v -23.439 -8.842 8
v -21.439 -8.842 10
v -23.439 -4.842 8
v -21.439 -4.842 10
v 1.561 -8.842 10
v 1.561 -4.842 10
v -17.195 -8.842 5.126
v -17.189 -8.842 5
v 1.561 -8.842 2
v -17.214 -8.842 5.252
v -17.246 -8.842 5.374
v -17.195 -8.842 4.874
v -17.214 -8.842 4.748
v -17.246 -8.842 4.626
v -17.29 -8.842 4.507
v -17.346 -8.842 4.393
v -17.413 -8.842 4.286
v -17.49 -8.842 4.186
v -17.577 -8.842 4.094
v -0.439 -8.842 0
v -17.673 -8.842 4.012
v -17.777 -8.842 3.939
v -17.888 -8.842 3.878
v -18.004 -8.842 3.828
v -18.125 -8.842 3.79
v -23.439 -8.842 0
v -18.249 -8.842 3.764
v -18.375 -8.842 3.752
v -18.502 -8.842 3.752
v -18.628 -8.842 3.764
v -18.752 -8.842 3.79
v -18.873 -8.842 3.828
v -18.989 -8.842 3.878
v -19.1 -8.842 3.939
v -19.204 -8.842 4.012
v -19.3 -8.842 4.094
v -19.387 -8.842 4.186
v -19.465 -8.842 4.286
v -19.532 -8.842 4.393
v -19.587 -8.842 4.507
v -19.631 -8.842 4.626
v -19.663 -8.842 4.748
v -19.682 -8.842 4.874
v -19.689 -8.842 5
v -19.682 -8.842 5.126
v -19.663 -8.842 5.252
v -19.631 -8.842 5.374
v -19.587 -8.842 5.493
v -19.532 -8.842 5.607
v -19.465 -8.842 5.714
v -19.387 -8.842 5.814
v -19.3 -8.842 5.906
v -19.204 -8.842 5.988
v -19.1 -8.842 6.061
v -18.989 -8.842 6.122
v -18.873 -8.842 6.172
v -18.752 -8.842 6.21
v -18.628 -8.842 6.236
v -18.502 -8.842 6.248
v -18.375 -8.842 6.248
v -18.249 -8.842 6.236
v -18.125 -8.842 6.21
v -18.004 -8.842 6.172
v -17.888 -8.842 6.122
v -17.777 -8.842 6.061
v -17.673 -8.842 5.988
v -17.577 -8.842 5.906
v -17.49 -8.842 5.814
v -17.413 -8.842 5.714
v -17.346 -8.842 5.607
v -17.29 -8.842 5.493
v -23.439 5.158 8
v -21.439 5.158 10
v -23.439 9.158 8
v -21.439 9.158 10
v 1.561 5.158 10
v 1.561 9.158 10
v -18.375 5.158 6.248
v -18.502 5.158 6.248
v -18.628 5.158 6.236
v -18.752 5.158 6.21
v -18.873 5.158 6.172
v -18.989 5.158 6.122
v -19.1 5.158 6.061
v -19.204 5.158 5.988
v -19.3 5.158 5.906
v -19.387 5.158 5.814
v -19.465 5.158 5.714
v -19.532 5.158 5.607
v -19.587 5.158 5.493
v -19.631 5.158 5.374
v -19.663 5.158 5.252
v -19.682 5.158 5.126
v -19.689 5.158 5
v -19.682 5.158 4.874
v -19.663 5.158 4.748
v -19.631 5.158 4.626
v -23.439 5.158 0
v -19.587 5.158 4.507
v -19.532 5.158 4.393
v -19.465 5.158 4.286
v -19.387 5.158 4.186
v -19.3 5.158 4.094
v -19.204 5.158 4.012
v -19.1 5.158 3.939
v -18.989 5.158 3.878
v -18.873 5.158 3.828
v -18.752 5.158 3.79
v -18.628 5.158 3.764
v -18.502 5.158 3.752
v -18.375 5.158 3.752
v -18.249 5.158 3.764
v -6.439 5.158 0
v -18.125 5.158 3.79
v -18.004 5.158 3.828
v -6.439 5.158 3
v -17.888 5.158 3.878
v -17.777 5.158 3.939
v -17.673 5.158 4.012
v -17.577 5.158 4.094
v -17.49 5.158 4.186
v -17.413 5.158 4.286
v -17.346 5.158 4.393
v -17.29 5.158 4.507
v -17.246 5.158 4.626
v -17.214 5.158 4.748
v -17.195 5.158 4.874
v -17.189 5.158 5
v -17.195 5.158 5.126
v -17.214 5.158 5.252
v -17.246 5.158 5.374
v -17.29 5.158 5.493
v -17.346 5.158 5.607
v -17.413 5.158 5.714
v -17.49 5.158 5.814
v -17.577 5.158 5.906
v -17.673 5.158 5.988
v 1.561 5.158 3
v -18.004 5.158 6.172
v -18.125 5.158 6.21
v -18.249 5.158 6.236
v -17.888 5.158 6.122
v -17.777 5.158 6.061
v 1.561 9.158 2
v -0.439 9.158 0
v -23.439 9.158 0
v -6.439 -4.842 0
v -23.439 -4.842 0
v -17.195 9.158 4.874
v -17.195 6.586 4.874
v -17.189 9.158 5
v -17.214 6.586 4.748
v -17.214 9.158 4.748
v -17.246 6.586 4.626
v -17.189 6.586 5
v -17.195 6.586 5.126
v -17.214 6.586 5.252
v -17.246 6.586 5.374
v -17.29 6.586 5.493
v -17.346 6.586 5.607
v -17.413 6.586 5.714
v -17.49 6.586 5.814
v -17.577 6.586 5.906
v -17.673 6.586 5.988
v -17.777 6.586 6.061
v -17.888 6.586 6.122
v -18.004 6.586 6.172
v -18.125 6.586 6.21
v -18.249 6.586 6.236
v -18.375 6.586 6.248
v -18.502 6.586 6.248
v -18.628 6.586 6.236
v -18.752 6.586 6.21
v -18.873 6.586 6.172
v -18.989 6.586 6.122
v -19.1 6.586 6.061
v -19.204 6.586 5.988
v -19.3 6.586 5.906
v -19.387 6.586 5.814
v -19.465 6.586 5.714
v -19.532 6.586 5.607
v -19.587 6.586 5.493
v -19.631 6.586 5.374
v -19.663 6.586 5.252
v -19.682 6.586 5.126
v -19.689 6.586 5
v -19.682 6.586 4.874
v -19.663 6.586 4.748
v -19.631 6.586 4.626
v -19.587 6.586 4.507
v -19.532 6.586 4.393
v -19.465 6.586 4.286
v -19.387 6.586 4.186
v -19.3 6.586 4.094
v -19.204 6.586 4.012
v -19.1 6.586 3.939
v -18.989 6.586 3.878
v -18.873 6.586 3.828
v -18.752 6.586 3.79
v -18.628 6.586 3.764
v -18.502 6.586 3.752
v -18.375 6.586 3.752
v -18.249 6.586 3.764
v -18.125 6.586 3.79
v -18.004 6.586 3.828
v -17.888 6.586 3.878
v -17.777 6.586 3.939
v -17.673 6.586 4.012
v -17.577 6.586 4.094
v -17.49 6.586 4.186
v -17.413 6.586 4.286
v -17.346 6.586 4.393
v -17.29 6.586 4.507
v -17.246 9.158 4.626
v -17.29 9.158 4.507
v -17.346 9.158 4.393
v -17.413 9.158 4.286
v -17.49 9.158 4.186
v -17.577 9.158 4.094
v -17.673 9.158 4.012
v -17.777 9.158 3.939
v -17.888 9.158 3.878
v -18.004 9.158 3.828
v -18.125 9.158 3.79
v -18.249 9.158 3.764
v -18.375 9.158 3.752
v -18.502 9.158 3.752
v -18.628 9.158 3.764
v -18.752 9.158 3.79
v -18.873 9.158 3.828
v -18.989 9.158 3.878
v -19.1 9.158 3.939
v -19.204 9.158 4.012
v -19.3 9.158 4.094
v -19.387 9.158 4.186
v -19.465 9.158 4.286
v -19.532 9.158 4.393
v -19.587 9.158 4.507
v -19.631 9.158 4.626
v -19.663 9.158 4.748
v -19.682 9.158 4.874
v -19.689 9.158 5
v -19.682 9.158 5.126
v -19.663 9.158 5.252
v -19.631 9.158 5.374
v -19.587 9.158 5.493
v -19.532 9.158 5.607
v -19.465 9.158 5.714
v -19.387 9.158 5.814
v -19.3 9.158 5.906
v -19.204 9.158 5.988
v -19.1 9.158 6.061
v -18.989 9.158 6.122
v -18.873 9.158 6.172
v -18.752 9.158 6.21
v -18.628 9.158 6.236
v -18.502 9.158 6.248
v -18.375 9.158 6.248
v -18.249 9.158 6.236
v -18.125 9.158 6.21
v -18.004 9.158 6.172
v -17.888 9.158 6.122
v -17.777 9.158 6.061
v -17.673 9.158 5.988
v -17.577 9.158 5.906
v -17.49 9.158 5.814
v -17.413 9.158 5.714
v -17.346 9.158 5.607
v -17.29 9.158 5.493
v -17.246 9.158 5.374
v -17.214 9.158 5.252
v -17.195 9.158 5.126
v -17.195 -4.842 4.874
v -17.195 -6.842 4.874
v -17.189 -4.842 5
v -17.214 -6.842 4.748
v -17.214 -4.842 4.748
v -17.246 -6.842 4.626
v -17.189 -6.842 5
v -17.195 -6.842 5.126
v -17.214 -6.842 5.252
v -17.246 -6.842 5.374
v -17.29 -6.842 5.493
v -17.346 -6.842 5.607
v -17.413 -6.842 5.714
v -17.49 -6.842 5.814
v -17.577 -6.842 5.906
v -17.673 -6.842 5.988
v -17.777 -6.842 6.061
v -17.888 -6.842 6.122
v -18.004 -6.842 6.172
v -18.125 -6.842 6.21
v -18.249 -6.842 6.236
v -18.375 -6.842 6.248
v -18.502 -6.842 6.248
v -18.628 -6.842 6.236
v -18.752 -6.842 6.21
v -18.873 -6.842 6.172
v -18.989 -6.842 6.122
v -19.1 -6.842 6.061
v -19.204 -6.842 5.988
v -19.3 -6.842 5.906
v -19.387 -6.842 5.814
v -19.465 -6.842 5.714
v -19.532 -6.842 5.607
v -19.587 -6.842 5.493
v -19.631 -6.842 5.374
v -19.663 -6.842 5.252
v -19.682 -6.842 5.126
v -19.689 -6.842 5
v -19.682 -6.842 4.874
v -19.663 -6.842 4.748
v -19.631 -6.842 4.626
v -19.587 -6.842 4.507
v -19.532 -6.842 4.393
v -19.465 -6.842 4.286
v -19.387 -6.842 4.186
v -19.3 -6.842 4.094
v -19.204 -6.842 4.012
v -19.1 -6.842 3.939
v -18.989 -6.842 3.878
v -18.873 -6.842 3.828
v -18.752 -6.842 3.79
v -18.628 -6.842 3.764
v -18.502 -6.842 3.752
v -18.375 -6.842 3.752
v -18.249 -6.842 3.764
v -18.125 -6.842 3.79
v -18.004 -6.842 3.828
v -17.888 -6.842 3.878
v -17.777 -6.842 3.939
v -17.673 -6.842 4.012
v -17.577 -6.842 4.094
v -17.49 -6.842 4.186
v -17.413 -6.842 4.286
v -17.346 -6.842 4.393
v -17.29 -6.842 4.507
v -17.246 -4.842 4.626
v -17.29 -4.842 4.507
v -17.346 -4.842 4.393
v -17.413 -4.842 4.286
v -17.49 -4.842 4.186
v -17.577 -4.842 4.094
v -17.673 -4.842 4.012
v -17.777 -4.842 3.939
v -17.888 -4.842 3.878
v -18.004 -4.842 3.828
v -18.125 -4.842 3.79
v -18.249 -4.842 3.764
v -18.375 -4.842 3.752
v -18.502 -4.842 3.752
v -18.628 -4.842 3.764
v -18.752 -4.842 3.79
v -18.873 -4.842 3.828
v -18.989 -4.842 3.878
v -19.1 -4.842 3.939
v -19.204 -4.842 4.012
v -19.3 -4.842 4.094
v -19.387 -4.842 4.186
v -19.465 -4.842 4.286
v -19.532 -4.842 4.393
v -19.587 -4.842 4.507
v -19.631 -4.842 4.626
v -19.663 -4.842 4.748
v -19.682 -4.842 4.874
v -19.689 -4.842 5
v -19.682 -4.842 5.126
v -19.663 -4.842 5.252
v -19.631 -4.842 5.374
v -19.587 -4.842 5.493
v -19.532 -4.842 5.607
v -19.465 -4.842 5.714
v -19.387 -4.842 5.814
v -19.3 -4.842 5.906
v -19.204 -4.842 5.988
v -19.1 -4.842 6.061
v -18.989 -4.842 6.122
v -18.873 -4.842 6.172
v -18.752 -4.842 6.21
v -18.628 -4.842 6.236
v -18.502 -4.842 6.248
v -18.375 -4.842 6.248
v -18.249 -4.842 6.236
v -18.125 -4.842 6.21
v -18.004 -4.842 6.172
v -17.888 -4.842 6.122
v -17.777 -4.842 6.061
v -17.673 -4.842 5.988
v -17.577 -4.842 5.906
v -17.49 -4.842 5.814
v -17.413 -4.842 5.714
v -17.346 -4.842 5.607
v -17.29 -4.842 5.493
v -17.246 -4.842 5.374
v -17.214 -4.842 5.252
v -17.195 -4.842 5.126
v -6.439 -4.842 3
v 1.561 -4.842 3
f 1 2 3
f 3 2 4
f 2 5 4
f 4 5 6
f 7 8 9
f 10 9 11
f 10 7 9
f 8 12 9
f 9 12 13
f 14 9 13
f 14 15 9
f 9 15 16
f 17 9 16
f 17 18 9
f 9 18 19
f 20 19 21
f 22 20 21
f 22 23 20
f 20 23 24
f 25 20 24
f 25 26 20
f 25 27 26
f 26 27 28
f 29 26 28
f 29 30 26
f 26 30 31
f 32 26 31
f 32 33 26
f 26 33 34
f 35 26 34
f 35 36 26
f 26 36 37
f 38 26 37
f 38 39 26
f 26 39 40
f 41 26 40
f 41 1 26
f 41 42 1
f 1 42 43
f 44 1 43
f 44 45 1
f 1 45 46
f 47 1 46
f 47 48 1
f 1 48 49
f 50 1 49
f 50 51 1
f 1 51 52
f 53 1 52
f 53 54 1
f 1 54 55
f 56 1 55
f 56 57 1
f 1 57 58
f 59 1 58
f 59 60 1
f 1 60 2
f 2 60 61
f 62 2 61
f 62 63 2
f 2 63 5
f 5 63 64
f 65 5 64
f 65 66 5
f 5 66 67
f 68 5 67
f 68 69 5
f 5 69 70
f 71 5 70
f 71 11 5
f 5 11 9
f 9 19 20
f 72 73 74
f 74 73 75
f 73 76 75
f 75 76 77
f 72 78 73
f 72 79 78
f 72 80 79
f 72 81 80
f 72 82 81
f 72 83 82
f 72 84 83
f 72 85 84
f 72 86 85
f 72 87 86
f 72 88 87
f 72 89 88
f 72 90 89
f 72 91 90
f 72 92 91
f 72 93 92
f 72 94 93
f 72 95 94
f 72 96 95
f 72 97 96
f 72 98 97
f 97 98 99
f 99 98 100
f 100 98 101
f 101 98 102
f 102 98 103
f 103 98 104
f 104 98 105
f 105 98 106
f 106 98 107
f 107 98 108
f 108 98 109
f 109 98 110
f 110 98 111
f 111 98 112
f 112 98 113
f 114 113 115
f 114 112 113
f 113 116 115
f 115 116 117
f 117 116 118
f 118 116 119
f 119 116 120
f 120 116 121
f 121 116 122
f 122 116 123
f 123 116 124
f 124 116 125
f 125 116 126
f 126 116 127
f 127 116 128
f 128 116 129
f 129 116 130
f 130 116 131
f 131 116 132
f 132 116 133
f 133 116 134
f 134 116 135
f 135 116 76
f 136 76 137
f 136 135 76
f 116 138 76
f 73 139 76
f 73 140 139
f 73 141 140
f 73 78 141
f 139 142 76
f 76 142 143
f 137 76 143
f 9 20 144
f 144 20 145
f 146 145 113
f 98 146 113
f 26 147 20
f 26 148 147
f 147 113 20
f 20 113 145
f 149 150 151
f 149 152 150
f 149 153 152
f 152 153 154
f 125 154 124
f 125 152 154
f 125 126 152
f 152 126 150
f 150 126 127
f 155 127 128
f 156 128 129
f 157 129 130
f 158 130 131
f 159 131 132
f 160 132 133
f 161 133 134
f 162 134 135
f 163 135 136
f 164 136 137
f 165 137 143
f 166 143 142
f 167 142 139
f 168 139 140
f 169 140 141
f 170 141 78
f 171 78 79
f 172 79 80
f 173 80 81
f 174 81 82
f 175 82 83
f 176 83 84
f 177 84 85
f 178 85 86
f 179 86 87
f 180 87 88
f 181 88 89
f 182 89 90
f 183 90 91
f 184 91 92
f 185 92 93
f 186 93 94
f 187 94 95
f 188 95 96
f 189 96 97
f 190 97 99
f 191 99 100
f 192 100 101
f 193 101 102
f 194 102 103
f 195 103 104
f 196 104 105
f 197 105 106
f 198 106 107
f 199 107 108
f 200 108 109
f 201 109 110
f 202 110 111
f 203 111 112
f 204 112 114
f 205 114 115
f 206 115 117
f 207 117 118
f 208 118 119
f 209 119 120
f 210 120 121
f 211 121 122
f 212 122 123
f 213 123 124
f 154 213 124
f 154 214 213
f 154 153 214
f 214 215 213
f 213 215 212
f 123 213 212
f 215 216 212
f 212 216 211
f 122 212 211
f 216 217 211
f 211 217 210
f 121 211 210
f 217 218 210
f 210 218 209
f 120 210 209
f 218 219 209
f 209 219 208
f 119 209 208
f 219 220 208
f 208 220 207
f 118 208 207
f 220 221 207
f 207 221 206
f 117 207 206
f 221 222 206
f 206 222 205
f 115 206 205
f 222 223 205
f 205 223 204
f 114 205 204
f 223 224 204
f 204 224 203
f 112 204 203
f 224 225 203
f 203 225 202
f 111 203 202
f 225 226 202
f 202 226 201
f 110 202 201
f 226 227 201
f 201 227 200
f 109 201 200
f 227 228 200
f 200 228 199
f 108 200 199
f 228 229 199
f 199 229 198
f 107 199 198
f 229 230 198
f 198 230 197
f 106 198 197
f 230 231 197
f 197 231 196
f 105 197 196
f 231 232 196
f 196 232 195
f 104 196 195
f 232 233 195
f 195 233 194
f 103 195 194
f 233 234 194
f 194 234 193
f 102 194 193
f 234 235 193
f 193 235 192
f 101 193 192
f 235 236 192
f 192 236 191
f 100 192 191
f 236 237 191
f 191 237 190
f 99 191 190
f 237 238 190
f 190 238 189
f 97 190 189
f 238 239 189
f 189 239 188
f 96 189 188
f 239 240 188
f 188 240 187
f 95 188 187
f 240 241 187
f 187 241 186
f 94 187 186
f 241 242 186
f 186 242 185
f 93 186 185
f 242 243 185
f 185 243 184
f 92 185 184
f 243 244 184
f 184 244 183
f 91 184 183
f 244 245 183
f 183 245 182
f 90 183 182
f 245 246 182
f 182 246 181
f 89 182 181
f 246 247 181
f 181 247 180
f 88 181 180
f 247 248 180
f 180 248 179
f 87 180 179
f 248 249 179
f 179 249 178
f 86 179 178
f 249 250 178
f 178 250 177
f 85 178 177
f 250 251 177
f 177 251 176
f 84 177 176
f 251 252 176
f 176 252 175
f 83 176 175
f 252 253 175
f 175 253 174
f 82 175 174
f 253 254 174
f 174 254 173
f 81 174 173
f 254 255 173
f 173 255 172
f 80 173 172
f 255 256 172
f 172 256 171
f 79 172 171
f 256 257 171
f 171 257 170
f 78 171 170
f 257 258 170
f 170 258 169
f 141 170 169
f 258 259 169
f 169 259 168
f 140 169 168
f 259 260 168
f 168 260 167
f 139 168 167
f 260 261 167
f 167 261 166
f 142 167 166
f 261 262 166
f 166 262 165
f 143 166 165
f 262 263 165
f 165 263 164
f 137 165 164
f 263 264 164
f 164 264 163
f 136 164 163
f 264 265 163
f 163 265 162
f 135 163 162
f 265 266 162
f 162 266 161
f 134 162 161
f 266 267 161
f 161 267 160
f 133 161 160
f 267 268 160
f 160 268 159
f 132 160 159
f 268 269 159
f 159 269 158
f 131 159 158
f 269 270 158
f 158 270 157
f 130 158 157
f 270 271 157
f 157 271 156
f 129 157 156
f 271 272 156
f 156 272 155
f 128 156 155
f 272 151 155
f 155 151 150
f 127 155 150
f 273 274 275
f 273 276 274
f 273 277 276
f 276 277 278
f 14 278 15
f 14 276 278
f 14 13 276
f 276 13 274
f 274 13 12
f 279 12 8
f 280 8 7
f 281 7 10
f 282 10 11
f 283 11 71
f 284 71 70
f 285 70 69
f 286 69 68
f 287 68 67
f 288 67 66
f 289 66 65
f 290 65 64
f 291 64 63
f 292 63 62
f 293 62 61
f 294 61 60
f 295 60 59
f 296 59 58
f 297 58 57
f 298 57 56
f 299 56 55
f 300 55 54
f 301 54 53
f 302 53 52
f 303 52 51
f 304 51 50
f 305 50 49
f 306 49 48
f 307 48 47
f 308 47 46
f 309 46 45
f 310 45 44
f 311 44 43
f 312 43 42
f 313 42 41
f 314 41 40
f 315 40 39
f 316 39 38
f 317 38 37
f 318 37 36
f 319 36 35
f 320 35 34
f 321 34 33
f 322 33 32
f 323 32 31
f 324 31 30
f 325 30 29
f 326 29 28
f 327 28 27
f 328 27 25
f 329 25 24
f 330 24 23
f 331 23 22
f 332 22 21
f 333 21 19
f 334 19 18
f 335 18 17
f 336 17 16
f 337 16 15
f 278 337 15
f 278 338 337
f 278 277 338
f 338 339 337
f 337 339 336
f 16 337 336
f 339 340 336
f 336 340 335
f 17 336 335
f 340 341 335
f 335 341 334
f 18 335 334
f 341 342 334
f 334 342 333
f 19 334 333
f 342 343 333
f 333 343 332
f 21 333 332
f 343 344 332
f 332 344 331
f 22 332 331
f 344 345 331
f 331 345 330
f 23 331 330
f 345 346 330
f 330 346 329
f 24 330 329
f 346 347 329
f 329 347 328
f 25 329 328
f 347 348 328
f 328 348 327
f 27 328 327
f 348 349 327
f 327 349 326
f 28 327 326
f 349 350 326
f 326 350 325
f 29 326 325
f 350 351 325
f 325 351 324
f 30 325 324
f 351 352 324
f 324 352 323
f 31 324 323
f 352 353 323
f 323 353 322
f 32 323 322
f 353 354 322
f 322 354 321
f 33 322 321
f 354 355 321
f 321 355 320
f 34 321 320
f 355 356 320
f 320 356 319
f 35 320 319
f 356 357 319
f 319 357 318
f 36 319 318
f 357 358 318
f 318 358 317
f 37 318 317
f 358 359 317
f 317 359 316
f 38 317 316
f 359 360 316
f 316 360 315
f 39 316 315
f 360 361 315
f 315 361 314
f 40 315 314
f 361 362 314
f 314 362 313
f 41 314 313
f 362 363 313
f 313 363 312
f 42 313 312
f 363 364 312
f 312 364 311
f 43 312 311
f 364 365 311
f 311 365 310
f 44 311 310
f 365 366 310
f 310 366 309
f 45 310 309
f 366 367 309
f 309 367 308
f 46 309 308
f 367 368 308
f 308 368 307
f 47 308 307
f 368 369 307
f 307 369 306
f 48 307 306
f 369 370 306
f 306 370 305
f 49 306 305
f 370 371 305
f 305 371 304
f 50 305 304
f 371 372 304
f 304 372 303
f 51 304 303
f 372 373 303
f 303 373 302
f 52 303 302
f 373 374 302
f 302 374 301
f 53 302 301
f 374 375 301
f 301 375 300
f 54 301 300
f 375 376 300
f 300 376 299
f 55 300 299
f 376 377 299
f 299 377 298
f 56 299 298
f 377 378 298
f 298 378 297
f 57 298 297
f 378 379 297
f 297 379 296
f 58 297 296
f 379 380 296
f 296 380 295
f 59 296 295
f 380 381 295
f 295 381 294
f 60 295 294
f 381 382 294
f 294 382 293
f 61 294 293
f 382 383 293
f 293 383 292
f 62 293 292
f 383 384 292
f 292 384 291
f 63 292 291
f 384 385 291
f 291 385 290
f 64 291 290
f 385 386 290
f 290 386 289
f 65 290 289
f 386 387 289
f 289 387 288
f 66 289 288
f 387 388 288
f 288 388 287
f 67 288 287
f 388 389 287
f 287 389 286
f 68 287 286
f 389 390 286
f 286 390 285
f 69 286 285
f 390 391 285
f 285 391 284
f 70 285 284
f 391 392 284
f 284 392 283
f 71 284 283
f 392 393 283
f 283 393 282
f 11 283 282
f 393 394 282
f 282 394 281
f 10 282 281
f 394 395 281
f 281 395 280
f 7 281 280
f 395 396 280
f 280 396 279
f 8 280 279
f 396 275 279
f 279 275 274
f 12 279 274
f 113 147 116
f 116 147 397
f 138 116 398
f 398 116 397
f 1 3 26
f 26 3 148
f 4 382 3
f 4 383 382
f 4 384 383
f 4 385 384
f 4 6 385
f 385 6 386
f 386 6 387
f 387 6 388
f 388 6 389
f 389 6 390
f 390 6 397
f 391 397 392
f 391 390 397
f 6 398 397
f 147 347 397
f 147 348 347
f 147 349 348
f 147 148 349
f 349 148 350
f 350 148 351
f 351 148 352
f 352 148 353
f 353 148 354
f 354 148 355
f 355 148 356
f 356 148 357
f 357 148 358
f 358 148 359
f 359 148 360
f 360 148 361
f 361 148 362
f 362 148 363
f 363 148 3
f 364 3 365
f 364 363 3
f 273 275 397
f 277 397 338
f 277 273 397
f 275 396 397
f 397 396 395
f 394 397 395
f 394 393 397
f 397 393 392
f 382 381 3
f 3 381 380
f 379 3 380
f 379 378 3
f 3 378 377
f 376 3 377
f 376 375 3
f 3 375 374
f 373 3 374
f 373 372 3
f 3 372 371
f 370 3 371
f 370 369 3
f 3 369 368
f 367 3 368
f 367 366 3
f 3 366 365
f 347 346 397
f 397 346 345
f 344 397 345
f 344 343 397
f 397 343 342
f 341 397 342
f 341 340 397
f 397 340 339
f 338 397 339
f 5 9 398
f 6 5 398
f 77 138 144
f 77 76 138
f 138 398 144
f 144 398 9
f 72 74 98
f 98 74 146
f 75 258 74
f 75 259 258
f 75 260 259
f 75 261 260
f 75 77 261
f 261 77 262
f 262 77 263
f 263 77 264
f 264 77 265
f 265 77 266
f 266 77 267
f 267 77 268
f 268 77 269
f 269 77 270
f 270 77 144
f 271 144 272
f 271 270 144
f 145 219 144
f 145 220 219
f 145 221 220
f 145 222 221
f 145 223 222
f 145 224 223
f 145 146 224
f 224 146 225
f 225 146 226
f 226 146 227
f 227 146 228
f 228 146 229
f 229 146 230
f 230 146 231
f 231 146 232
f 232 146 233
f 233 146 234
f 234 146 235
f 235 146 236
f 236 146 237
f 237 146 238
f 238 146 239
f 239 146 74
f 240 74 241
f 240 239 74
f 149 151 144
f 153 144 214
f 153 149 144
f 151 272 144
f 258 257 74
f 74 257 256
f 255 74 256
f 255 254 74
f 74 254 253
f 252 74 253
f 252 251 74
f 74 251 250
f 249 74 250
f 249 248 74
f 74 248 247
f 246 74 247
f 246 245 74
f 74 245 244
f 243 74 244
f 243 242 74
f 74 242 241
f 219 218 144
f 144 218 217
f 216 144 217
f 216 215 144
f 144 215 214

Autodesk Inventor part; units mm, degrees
ref_plane "YZ Plane" through (0, 0, 0) normal (1, 0, 0) x (0, 1, 0)
ref_plane "XZ Plane" through (0, 0, 0) normal (0, 1, 0) x (-1, 0, 0)
ref_plane "XY Plane" through (0, 0, 0) normal (0, 0, 1) x (1, 0, 0)
sketch "Sketch1" plane through (0, 0, 0) normal (0, 0, 1) x (1, 0, 0)
  line L0 (-23.4386, 9.1579) -> (1.5614, 9.1579)
  line L1 (1.5614, 9.1579) -> (1.5614, 5.1579)
  line L2 (1.5614, 5.1579) -> (-23.4386, 5.1579)
  line L3 (-23.4386, 5.1579) -> (-23.4386, 9.1579)
  line L4 (-23.4386, -4.8421) -> (1.5614, -4.8421)
  line L5 (1.5614, -4.8421) -> (1.5614, -8.8421)
  line L6 (1.5614, -8.8421) -> (-23.4386, -8.8421)
  line L7 (-23.4386, -8.8421) -> (-23.4386, -4.8421)
  point P0 (0, 0)
  dimension "d0" = 4
  dimension "d1" = 4
  dimension "d2" = 10
  dimension "d3" = 25
  dimension "d4" = 25
extrude "Extrusion1" add sketch "Sketch1" along normal blind 10
sketch "Sketch2" plane through (0, 0, 0) normal (0, 0, -1) x (-1, 0, 0)
  line L0 (-1.5614, -8.8421) -> (6.4386, -8.8421)
  line L1 (6.4386, -8.8421) -> (6.4386, 9.1579)
  line L2 (6.4386, 9.1579) -> (-1.5614, 9.1579)
  line L3 (-1.5614, 9.1579) -> (-1.5614, -8.8421)
  line L4 (23.4386, 9.1579) -> (-1.5614, 9.1579) projected
  point P0 (0, 0)
  dimension "d7" = 8
extrude "Extrusion2" add sketch "Sketch2" against normal blind 3
sketch "Sketch3" plane through (-23.4386, -8.8421, 0) normal (0, -1, 0) x (1, 0, 0)
  line L0 (0, 0) -> (0, 10) projected
  circle A0 centre (5, 5) radius 1.25
  point P0 (23.4386, 0)
  dimension "d10" = 5
  dimension "d11" = 2.5
extrude "Extrusion3" cut sketch "Sketch3" against normal blind 30
chamfer "Chamfer1" distance 2 angle 45 1 edges at (1.5614, 0.1579, 0)
chamfer "Chamfer2" distance 2 angle 45 2 edges at (-23.4386, 7.1579, 10) (-23.4386, -6.8421, 10)
properties part number "Top pully rack"
